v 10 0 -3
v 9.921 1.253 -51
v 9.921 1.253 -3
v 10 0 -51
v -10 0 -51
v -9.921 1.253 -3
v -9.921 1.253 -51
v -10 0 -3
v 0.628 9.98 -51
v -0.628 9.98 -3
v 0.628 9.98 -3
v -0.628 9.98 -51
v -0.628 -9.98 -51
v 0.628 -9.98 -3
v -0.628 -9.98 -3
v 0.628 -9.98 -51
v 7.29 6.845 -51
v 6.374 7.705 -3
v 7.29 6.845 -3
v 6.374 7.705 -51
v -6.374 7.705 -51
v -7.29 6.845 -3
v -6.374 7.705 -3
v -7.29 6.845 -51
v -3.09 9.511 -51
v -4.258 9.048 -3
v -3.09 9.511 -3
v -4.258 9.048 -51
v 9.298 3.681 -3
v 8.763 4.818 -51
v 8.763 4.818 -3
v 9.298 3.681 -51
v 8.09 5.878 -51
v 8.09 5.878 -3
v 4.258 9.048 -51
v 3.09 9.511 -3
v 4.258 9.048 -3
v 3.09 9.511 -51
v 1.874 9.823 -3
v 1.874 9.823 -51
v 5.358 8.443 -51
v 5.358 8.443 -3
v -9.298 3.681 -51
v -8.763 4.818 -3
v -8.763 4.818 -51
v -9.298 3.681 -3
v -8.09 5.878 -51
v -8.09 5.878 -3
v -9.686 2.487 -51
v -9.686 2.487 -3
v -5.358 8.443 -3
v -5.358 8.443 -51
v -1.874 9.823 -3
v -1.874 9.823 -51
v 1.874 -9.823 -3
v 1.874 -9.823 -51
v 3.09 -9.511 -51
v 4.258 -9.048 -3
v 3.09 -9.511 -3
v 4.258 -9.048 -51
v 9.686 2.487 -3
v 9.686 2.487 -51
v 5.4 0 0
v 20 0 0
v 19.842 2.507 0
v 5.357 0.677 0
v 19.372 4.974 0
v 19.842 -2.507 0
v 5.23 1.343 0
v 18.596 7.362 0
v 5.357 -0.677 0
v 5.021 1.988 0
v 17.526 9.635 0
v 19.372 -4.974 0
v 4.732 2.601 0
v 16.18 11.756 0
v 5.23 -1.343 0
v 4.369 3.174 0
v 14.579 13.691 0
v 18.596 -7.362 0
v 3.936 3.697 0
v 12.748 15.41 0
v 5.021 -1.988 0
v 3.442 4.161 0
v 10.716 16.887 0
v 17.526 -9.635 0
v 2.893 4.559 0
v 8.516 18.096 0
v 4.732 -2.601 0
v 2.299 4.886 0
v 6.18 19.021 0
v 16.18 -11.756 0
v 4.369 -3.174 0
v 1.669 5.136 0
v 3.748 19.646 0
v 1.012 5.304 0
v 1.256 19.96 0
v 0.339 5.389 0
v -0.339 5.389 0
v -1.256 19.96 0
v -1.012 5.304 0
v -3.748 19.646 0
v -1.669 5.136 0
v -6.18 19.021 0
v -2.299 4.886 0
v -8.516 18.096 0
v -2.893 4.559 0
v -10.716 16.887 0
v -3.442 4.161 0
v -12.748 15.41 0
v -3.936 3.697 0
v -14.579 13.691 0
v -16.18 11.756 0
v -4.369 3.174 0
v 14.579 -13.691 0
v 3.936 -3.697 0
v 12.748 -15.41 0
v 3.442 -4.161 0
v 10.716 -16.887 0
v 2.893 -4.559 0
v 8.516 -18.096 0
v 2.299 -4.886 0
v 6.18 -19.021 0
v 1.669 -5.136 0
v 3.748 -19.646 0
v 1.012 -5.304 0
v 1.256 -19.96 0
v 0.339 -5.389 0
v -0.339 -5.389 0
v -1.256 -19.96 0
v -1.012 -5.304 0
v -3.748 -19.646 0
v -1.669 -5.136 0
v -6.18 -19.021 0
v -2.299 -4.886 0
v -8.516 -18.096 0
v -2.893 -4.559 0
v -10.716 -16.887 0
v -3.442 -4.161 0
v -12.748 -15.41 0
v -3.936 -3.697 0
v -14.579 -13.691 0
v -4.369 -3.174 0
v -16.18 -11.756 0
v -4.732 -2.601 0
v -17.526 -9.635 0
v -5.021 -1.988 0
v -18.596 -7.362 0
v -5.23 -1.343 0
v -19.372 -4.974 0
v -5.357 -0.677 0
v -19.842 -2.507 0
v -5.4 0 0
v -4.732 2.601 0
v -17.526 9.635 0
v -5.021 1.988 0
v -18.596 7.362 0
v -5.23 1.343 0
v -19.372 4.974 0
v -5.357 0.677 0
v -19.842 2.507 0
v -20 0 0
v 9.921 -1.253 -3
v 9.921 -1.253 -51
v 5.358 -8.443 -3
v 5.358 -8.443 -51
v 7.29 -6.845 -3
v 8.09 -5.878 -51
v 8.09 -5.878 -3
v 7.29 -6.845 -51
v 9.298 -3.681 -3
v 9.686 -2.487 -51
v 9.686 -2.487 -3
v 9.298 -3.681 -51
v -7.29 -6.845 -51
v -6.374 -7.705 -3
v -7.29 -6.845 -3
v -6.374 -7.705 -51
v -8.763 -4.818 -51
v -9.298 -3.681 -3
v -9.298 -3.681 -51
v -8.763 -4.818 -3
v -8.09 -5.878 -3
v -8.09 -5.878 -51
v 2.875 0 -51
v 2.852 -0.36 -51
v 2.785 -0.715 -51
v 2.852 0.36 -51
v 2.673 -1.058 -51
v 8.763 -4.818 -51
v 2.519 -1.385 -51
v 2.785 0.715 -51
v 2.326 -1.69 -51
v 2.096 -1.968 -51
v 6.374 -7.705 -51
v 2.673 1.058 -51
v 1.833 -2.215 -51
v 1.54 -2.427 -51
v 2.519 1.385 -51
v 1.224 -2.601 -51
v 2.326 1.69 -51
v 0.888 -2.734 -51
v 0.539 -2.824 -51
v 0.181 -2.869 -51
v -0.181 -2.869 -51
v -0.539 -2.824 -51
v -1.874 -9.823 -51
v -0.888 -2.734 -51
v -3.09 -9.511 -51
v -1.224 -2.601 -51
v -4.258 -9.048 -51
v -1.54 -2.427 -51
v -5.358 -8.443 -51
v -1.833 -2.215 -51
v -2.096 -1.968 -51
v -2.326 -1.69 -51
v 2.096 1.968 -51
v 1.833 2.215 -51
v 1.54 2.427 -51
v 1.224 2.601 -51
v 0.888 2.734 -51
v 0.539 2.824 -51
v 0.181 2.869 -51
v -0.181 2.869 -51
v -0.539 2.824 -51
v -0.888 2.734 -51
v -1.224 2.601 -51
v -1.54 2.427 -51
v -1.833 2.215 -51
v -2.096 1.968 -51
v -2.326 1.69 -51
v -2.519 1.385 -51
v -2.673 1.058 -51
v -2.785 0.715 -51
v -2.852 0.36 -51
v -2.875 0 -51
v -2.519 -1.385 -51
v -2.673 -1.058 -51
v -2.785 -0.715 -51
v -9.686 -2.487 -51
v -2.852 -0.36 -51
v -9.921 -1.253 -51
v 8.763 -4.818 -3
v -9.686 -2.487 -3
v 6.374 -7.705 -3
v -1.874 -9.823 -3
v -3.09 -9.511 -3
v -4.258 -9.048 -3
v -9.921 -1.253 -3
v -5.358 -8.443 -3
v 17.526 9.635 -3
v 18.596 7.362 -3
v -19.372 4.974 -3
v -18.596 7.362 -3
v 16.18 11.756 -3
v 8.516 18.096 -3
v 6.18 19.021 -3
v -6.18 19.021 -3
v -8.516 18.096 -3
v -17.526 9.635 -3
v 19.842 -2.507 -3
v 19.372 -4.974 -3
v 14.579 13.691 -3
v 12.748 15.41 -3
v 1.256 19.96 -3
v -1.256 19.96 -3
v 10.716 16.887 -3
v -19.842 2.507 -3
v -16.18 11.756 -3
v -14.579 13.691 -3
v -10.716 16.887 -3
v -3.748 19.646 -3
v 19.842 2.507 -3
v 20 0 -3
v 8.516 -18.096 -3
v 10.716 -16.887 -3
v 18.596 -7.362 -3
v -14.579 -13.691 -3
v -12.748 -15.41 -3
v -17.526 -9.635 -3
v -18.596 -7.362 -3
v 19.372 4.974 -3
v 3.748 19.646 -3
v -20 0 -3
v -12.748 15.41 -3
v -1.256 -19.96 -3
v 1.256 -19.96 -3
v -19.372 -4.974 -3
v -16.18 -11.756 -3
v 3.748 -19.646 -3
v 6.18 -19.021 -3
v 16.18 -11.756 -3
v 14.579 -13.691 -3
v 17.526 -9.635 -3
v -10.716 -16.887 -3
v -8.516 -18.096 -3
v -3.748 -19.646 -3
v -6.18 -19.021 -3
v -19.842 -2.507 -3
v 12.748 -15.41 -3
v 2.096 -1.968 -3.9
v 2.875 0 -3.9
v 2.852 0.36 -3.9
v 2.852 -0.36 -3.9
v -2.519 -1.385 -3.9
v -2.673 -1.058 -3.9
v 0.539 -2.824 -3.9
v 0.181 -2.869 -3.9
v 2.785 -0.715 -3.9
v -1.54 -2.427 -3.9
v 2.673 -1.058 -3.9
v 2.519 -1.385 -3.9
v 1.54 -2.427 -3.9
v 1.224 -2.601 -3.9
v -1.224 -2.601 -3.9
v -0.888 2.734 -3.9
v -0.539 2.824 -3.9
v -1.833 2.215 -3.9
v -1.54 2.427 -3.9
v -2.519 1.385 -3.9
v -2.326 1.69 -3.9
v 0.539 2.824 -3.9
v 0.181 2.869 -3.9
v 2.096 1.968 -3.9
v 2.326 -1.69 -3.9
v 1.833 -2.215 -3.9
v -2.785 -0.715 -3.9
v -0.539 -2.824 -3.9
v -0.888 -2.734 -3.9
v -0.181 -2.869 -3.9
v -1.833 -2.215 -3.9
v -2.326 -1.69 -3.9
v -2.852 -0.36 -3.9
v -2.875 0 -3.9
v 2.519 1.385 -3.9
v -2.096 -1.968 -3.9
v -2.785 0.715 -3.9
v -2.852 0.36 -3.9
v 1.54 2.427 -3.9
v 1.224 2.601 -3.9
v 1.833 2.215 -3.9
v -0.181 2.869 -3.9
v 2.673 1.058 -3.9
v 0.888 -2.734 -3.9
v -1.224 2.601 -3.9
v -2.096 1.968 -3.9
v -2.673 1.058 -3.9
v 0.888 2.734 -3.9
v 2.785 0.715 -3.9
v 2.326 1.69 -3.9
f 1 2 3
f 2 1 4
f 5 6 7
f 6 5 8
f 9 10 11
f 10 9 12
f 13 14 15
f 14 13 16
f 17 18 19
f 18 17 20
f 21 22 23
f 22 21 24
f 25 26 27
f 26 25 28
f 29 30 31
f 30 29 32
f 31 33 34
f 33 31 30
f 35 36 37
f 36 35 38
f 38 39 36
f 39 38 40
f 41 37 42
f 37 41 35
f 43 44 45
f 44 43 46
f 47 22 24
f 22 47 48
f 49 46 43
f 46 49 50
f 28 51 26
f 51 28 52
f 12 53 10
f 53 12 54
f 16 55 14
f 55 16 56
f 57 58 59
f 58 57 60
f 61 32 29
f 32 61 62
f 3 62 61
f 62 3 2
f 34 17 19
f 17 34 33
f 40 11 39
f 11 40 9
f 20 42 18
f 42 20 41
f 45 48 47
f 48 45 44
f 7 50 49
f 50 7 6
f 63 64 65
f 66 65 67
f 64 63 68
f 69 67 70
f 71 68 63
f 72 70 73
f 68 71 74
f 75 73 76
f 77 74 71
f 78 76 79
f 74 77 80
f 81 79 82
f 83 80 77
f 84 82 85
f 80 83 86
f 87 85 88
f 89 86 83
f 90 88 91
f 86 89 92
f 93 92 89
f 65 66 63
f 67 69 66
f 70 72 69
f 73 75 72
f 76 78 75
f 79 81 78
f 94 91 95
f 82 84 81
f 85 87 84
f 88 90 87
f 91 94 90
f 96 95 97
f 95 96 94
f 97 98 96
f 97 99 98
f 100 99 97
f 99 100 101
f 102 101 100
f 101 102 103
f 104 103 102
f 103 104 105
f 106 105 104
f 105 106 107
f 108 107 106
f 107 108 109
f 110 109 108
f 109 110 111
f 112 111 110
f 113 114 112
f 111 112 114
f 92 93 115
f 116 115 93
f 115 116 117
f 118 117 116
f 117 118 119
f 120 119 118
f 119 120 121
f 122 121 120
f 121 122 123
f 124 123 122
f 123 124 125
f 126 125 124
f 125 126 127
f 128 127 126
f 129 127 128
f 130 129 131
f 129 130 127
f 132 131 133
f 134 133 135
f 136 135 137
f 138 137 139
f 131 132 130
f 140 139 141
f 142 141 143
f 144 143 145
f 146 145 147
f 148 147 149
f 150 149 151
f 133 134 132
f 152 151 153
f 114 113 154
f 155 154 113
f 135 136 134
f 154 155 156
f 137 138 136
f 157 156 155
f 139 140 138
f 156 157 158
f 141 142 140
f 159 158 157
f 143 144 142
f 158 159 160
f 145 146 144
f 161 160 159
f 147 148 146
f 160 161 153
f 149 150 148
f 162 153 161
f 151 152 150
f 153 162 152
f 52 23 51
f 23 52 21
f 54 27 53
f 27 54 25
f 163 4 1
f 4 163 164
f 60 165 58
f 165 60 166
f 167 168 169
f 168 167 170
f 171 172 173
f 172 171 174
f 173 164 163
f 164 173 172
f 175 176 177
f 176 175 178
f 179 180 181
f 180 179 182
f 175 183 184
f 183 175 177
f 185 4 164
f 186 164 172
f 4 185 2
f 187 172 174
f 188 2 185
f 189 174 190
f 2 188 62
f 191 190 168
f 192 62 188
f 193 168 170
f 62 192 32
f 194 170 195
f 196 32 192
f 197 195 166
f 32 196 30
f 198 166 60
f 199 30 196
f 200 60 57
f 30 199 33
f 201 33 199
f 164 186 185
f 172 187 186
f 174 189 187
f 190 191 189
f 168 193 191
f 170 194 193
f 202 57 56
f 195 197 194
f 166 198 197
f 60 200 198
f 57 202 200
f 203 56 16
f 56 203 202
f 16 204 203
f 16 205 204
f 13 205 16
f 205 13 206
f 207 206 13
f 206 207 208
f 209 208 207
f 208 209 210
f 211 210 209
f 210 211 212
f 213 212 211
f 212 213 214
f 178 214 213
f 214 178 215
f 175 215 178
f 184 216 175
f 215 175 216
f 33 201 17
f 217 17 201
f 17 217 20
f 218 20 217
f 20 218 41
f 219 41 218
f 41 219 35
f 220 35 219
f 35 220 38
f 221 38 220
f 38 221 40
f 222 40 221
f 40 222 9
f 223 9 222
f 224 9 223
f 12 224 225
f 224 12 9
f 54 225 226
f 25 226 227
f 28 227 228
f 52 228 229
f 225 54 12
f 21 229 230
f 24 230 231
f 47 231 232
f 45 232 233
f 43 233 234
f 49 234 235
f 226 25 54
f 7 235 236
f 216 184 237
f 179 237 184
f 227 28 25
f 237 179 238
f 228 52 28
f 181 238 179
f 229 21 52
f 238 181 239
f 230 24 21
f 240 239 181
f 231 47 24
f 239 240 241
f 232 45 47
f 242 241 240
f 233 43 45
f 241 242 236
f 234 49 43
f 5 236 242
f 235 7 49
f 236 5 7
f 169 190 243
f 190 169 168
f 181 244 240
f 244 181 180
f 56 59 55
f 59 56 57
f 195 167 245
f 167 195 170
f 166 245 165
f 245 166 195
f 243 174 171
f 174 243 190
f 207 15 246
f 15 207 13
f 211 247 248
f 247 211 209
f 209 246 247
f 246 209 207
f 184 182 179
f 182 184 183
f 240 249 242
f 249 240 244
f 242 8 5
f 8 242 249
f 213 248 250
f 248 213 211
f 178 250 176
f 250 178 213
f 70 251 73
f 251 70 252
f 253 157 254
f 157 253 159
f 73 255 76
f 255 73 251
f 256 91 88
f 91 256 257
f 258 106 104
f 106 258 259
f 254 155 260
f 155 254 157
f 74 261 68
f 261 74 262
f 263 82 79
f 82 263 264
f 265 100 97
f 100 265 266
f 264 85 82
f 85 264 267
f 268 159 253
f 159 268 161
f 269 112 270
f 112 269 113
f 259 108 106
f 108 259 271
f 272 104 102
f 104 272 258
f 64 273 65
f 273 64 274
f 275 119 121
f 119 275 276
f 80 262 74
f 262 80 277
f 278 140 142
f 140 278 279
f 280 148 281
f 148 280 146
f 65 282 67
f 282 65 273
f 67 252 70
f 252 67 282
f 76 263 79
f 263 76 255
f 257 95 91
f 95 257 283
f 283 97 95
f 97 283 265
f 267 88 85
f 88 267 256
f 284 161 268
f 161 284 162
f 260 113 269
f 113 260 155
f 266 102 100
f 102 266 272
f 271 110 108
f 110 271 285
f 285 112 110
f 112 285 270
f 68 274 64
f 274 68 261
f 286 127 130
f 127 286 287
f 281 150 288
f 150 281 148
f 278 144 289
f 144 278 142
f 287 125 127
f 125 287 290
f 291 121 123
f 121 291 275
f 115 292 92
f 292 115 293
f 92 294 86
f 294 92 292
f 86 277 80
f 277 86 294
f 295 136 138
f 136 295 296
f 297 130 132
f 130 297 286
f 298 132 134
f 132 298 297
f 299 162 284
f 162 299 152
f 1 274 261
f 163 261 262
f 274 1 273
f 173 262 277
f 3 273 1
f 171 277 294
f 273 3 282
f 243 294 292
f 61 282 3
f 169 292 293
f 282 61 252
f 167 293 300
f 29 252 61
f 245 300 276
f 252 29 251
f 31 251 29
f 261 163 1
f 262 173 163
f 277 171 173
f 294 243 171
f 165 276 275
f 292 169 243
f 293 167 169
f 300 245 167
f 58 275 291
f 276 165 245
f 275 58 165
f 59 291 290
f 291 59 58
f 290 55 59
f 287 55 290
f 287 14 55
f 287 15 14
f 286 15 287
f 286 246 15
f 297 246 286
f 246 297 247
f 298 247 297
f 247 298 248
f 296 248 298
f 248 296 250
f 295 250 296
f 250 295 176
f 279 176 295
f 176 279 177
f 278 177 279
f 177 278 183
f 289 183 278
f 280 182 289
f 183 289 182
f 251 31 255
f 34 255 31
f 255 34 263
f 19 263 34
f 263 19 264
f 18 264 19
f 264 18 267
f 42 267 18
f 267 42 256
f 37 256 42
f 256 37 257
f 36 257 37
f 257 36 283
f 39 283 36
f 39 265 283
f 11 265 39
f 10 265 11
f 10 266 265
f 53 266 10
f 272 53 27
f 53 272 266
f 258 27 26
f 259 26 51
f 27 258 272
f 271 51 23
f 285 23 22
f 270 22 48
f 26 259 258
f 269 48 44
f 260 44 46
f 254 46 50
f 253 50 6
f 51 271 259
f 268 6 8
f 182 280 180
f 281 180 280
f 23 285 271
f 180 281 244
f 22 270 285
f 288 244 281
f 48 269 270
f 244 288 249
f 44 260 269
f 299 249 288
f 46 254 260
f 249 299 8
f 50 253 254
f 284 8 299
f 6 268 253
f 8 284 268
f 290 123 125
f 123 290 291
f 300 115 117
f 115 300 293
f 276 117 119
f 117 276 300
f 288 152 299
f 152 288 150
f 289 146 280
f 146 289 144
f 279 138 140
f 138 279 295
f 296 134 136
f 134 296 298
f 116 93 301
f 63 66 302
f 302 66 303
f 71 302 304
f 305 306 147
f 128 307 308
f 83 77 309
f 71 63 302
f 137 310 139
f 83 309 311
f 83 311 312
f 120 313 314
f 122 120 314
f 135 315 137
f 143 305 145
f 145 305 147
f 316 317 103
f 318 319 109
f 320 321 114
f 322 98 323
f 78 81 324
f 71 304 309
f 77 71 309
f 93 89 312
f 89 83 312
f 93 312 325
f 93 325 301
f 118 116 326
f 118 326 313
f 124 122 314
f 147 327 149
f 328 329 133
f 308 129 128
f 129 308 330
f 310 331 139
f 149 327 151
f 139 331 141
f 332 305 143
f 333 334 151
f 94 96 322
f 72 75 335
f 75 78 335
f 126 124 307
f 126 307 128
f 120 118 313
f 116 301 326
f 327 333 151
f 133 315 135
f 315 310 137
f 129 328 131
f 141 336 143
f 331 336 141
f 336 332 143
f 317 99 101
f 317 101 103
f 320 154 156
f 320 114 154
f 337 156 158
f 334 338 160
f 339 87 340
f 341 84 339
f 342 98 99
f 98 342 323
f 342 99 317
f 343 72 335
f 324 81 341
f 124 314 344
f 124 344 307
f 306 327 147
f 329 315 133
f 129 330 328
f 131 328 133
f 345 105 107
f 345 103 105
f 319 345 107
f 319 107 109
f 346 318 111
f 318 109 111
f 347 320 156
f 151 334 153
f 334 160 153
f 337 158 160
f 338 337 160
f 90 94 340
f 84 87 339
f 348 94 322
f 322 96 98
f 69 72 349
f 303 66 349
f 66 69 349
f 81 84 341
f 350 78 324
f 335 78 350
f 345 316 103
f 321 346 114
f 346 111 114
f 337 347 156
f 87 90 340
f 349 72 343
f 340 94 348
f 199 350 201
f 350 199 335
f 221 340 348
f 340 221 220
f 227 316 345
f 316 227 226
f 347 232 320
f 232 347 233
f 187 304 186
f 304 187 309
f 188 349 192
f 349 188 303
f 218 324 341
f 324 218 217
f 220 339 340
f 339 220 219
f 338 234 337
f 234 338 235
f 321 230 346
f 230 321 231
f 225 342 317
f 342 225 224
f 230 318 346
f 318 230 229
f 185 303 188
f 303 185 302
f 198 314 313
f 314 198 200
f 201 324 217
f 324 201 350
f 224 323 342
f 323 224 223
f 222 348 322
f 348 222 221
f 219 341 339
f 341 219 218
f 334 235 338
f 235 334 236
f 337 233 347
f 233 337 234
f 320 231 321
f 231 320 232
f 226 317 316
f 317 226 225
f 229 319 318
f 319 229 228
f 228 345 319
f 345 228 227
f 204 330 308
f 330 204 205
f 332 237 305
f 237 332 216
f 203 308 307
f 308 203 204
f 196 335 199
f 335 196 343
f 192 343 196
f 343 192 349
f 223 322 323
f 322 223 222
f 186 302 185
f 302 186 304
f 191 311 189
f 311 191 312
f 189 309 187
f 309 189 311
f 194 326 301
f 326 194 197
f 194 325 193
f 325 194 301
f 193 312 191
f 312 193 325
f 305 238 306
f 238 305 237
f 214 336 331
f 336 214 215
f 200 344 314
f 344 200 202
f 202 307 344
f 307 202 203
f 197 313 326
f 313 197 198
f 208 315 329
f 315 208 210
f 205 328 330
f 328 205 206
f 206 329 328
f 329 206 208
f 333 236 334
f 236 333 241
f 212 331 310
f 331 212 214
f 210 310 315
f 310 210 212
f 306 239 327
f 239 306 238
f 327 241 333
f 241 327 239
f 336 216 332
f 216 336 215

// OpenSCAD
$fn = 50;


difference() {
	union() {
		translate(v = [0, 0, -51.0000000000]) {
			cylinder(h = 51, r = 10.0000000000);
		}
		translate(v = [0, 0, -3.0000000000]) {
			cylinder(h = 3, r = 20.0000000000);
		}
	}
	union() {
		translate(v = [0, 0, 0]) {
			rotate(a = [0, 0, 0]) {
				difference() {
					union() {
						#translate(v = [0, 0, -51.0000000000]) {
							cylinder(h = 51, r = 2.6000000000);
						}
						#translate(v = [0, 0, -3.9000000000]) {
							cylinder(h = 3.9000000000, r1 = 2.8750000000, r2 = 5.4000000000);
						}
						#translate(v = [0, 0, -51.0000000000]) {
							cylinder(h = 51, r = 2.8750000000);
						}
						#translate(v = [0, 0, -51.0000000000]) {
							cylinder(h = 51, r = 2.6000000000);
						}
					}
					union();
				}
			}
		}
	}
}
